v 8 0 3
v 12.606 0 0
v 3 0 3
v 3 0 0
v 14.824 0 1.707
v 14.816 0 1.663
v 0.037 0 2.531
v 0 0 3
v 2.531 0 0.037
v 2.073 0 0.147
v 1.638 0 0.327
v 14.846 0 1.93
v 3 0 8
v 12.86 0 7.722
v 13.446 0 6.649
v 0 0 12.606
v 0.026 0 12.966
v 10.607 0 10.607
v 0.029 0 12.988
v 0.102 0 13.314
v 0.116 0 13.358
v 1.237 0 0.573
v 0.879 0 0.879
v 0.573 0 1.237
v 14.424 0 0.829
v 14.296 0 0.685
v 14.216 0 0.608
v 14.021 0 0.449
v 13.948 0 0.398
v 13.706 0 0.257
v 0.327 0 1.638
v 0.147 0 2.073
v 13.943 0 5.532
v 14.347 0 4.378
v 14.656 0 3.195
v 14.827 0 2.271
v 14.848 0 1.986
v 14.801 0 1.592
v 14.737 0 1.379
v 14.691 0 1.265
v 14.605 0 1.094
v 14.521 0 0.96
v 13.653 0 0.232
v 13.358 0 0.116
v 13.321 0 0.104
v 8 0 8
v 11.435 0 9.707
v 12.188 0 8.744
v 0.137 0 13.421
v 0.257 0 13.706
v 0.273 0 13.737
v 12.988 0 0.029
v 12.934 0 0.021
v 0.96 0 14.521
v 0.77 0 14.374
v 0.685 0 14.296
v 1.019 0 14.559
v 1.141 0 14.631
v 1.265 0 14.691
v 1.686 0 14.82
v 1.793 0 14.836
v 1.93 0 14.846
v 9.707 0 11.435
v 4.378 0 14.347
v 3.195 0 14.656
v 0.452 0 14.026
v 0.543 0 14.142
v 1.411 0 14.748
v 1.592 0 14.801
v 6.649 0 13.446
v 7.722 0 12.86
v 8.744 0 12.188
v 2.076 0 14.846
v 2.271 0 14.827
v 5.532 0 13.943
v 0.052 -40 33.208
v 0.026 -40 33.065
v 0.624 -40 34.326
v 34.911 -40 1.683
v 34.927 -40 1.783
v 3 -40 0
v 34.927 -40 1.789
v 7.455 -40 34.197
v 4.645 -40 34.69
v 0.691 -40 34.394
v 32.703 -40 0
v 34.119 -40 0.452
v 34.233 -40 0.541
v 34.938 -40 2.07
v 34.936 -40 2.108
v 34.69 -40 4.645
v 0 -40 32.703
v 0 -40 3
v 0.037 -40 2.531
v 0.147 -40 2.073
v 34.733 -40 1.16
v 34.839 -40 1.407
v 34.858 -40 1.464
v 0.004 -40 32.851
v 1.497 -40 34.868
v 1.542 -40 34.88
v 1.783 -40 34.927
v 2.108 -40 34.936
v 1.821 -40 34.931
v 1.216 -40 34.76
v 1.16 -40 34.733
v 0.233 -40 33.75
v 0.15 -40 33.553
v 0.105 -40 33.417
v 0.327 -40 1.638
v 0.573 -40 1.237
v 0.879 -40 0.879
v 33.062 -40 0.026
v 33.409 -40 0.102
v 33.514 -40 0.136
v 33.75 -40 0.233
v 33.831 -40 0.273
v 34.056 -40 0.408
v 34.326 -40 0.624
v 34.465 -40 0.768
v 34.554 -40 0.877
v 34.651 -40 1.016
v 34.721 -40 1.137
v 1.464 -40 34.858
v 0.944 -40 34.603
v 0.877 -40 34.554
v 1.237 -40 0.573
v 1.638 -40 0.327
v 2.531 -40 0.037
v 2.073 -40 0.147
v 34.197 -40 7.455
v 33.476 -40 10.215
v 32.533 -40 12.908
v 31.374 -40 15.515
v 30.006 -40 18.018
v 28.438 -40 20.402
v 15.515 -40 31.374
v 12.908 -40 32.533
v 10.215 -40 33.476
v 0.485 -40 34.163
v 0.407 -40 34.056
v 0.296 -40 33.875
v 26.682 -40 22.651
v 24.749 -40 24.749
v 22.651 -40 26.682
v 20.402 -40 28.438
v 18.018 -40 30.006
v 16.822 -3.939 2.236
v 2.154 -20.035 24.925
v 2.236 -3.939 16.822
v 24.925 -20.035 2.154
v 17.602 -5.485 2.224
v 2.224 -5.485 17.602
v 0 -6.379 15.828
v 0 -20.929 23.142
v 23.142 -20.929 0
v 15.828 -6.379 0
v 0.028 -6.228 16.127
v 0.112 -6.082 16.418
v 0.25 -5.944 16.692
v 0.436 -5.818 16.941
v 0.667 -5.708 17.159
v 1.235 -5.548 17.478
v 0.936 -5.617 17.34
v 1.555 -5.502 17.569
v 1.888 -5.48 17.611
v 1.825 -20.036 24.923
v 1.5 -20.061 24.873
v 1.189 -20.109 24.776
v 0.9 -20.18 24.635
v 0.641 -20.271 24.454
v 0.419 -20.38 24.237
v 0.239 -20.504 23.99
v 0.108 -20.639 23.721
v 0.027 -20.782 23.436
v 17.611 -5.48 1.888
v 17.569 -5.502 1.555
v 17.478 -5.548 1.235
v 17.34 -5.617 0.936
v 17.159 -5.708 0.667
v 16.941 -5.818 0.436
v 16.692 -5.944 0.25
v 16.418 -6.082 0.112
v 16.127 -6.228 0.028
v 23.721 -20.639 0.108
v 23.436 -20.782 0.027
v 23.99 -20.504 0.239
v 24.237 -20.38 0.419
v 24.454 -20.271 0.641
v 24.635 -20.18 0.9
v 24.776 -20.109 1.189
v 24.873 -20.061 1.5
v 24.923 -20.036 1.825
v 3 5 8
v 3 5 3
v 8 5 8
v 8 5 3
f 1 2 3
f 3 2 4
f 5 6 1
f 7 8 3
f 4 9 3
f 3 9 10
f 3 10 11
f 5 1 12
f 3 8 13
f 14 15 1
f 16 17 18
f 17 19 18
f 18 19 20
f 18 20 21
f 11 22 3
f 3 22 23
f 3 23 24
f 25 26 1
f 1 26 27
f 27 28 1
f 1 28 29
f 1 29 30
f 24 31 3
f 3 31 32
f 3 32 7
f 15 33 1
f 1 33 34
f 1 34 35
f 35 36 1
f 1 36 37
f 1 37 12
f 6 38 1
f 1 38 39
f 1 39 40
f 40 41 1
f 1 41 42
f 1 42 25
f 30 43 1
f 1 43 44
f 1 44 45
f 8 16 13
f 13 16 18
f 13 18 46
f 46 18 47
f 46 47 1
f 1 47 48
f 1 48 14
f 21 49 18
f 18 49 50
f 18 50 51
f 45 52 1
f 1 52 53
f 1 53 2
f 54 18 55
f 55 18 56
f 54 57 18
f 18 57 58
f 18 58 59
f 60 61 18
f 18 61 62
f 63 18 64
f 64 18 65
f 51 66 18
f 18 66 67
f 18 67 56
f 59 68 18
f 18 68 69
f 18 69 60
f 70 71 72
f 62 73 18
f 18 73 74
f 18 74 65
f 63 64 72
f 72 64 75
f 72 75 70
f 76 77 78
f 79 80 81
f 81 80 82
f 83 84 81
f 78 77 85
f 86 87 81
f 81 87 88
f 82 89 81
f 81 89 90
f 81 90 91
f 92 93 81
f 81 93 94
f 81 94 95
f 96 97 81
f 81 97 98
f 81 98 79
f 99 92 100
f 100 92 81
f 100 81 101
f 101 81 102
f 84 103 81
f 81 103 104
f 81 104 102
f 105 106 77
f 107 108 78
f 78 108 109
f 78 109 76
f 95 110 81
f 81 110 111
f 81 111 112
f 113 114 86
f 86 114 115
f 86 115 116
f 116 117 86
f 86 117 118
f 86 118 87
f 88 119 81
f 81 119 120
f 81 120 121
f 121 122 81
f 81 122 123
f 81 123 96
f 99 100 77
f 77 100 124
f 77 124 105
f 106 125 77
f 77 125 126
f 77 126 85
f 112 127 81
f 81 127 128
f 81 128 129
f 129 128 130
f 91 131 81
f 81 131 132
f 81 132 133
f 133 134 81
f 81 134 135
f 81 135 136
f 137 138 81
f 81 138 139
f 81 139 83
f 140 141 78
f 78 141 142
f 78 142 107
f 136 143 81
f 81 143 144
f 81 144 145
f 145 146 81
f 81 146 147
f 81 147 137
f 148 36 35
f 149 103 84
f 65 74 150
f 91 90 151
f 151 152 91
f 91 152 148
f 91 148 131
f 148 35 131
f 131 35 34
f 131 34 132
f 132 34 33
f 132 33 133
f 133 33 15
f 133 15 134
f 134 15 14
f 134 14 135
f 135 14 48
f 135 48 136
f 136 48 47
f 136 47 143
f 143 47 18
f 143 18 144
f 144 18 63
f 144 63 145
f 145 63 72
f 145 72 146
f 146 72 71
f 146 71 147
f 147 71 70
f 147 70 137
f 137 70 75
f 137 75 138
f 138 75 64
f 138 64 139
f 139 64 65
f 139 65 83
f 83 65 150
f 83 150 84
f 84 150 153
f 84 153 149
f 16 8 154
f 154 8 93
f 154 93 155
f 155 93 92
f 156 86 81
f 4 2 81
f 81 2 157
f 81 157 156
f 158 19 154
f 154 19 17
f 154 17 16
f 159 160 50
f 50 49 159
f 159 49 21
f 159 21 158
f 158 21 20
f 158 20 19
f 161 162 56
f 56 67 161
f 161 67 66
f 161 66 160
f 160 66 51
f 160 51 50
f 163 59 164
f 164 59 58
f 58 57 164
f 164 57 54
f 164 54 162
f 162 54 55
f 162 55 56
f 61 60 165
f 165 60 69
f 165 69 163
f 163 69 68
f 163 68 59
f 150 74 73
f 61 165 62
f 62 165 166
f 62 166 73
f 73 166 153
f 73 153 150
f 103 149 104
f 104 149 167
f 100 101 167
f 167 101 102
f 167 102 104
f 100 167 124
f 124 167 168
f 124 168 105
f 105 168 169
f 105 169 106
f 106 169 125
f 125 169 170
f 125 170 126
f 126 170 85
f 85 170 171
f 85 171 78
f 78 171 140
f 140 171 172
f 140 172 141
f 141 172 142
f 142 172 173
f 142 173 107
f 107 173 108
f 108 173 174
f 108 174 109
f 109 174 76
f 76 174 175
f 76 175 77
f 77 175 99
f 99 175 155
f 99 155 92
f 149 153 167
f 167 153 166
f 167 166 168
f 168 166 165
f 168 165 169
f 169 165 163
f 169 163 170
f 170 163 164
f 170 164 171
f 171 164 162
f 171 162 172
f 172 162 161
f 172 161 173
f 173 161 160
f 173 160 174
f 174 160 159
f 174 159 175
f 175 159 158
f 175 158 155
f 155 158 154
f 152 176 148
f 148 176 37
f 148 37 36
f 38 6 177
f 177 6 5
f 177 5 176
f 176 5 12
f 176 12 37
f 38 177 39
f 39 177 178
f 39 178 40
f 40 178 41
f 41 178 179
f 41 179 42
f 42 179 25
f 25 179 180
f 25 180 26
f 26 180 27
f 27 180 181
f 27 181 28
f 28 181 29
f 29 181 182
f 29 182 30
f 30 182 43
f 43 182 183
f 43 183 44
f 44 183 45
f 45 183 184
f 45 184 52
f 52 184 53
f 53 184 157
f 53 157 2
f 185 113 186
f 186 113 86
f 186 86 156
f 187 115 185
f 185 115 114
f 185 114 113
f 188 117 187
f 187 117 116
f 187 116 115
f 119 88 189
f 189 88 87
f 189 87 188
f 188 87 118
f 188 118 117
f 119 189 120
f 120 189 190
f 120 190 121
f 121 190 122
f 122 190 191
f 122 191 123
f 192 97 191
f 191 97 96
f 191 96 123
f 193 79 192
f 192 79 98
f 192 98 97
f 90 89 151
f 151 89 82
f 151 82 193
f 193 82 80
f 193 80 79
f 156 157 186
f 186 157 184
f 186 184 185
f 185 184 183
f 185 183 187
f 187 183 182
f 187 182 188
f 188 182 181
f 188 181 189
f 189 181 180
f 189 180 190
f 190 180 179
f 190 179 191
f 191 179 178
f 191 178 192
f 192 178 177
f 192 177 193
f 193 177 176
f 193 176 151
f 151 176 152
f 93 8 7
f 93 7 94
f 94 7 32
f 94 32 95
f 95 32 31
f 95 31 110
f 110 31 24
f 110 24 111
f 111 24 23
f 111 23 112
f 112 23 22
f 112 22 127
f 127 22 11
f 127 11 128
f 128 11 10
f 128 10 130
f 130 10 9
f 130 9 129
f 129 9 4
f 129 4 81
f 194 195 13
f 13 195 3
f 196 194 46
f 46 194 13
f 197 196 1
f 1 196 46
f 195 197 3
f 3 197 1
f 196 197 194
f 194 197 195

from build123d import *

# Parameters (mm, degrees)
REVOLVE1_ANGLE      = 90
FILLET2_R           = 2
FILLET3_R           = 2
FILLET4_R           = 3
SKETCH2_W           = 5
SKETCH2_H           = 5
BOSS_EXTRUDE1_DEPTH = 5


with BuildPart() as part:
    # Sketch1 → Revolve1 (revolve)
    with BuildSketch(Plane.XY):
        Polygon((0, 0), (15, 0), (35, -40), (0, -40), align=None)
    revolve(axis=Axis((0, 0, 0), (0, -1, 0)), revolution_arc=REVOLVE1_ANGLE)

    # Fillet2
    fillet2_edges = [part.edges().sort_by_distance(p)[0] for p in [
        (0, -20, 25),
    ]]
    fillet(fillet2_edges, radius=FILLET2_R)

    # Fillet3
    fillet3_edges = [part.edges().sort_by_distance(p)[0] for p in [
        (25, -20, 0),
    ]]
    fillet(fillet3_edges, radius=FILLET3_R)

    # Fillet4
    fillet4_edges = [part.edges().sort_by_distance(p)[0] for p in [
        (0, -20, 0),
    ]]
    fillet(fillet4_edges, radius=FILLET4_R)

    # Sketch2 → Boss-Extrude1 (add)
    with BuildSketch(Plane(origin=(0, 0, 0), x_dir=(1, 0, 0), z_dir=(0, 1, 0))):
        with Locations((5.5, -5.5)):
            Rectangle(SKETCH2_W, SKETCH2_H)
    extrude(amount=BOSS_EXTRUDE1_DEPTH)


solid = part.part
